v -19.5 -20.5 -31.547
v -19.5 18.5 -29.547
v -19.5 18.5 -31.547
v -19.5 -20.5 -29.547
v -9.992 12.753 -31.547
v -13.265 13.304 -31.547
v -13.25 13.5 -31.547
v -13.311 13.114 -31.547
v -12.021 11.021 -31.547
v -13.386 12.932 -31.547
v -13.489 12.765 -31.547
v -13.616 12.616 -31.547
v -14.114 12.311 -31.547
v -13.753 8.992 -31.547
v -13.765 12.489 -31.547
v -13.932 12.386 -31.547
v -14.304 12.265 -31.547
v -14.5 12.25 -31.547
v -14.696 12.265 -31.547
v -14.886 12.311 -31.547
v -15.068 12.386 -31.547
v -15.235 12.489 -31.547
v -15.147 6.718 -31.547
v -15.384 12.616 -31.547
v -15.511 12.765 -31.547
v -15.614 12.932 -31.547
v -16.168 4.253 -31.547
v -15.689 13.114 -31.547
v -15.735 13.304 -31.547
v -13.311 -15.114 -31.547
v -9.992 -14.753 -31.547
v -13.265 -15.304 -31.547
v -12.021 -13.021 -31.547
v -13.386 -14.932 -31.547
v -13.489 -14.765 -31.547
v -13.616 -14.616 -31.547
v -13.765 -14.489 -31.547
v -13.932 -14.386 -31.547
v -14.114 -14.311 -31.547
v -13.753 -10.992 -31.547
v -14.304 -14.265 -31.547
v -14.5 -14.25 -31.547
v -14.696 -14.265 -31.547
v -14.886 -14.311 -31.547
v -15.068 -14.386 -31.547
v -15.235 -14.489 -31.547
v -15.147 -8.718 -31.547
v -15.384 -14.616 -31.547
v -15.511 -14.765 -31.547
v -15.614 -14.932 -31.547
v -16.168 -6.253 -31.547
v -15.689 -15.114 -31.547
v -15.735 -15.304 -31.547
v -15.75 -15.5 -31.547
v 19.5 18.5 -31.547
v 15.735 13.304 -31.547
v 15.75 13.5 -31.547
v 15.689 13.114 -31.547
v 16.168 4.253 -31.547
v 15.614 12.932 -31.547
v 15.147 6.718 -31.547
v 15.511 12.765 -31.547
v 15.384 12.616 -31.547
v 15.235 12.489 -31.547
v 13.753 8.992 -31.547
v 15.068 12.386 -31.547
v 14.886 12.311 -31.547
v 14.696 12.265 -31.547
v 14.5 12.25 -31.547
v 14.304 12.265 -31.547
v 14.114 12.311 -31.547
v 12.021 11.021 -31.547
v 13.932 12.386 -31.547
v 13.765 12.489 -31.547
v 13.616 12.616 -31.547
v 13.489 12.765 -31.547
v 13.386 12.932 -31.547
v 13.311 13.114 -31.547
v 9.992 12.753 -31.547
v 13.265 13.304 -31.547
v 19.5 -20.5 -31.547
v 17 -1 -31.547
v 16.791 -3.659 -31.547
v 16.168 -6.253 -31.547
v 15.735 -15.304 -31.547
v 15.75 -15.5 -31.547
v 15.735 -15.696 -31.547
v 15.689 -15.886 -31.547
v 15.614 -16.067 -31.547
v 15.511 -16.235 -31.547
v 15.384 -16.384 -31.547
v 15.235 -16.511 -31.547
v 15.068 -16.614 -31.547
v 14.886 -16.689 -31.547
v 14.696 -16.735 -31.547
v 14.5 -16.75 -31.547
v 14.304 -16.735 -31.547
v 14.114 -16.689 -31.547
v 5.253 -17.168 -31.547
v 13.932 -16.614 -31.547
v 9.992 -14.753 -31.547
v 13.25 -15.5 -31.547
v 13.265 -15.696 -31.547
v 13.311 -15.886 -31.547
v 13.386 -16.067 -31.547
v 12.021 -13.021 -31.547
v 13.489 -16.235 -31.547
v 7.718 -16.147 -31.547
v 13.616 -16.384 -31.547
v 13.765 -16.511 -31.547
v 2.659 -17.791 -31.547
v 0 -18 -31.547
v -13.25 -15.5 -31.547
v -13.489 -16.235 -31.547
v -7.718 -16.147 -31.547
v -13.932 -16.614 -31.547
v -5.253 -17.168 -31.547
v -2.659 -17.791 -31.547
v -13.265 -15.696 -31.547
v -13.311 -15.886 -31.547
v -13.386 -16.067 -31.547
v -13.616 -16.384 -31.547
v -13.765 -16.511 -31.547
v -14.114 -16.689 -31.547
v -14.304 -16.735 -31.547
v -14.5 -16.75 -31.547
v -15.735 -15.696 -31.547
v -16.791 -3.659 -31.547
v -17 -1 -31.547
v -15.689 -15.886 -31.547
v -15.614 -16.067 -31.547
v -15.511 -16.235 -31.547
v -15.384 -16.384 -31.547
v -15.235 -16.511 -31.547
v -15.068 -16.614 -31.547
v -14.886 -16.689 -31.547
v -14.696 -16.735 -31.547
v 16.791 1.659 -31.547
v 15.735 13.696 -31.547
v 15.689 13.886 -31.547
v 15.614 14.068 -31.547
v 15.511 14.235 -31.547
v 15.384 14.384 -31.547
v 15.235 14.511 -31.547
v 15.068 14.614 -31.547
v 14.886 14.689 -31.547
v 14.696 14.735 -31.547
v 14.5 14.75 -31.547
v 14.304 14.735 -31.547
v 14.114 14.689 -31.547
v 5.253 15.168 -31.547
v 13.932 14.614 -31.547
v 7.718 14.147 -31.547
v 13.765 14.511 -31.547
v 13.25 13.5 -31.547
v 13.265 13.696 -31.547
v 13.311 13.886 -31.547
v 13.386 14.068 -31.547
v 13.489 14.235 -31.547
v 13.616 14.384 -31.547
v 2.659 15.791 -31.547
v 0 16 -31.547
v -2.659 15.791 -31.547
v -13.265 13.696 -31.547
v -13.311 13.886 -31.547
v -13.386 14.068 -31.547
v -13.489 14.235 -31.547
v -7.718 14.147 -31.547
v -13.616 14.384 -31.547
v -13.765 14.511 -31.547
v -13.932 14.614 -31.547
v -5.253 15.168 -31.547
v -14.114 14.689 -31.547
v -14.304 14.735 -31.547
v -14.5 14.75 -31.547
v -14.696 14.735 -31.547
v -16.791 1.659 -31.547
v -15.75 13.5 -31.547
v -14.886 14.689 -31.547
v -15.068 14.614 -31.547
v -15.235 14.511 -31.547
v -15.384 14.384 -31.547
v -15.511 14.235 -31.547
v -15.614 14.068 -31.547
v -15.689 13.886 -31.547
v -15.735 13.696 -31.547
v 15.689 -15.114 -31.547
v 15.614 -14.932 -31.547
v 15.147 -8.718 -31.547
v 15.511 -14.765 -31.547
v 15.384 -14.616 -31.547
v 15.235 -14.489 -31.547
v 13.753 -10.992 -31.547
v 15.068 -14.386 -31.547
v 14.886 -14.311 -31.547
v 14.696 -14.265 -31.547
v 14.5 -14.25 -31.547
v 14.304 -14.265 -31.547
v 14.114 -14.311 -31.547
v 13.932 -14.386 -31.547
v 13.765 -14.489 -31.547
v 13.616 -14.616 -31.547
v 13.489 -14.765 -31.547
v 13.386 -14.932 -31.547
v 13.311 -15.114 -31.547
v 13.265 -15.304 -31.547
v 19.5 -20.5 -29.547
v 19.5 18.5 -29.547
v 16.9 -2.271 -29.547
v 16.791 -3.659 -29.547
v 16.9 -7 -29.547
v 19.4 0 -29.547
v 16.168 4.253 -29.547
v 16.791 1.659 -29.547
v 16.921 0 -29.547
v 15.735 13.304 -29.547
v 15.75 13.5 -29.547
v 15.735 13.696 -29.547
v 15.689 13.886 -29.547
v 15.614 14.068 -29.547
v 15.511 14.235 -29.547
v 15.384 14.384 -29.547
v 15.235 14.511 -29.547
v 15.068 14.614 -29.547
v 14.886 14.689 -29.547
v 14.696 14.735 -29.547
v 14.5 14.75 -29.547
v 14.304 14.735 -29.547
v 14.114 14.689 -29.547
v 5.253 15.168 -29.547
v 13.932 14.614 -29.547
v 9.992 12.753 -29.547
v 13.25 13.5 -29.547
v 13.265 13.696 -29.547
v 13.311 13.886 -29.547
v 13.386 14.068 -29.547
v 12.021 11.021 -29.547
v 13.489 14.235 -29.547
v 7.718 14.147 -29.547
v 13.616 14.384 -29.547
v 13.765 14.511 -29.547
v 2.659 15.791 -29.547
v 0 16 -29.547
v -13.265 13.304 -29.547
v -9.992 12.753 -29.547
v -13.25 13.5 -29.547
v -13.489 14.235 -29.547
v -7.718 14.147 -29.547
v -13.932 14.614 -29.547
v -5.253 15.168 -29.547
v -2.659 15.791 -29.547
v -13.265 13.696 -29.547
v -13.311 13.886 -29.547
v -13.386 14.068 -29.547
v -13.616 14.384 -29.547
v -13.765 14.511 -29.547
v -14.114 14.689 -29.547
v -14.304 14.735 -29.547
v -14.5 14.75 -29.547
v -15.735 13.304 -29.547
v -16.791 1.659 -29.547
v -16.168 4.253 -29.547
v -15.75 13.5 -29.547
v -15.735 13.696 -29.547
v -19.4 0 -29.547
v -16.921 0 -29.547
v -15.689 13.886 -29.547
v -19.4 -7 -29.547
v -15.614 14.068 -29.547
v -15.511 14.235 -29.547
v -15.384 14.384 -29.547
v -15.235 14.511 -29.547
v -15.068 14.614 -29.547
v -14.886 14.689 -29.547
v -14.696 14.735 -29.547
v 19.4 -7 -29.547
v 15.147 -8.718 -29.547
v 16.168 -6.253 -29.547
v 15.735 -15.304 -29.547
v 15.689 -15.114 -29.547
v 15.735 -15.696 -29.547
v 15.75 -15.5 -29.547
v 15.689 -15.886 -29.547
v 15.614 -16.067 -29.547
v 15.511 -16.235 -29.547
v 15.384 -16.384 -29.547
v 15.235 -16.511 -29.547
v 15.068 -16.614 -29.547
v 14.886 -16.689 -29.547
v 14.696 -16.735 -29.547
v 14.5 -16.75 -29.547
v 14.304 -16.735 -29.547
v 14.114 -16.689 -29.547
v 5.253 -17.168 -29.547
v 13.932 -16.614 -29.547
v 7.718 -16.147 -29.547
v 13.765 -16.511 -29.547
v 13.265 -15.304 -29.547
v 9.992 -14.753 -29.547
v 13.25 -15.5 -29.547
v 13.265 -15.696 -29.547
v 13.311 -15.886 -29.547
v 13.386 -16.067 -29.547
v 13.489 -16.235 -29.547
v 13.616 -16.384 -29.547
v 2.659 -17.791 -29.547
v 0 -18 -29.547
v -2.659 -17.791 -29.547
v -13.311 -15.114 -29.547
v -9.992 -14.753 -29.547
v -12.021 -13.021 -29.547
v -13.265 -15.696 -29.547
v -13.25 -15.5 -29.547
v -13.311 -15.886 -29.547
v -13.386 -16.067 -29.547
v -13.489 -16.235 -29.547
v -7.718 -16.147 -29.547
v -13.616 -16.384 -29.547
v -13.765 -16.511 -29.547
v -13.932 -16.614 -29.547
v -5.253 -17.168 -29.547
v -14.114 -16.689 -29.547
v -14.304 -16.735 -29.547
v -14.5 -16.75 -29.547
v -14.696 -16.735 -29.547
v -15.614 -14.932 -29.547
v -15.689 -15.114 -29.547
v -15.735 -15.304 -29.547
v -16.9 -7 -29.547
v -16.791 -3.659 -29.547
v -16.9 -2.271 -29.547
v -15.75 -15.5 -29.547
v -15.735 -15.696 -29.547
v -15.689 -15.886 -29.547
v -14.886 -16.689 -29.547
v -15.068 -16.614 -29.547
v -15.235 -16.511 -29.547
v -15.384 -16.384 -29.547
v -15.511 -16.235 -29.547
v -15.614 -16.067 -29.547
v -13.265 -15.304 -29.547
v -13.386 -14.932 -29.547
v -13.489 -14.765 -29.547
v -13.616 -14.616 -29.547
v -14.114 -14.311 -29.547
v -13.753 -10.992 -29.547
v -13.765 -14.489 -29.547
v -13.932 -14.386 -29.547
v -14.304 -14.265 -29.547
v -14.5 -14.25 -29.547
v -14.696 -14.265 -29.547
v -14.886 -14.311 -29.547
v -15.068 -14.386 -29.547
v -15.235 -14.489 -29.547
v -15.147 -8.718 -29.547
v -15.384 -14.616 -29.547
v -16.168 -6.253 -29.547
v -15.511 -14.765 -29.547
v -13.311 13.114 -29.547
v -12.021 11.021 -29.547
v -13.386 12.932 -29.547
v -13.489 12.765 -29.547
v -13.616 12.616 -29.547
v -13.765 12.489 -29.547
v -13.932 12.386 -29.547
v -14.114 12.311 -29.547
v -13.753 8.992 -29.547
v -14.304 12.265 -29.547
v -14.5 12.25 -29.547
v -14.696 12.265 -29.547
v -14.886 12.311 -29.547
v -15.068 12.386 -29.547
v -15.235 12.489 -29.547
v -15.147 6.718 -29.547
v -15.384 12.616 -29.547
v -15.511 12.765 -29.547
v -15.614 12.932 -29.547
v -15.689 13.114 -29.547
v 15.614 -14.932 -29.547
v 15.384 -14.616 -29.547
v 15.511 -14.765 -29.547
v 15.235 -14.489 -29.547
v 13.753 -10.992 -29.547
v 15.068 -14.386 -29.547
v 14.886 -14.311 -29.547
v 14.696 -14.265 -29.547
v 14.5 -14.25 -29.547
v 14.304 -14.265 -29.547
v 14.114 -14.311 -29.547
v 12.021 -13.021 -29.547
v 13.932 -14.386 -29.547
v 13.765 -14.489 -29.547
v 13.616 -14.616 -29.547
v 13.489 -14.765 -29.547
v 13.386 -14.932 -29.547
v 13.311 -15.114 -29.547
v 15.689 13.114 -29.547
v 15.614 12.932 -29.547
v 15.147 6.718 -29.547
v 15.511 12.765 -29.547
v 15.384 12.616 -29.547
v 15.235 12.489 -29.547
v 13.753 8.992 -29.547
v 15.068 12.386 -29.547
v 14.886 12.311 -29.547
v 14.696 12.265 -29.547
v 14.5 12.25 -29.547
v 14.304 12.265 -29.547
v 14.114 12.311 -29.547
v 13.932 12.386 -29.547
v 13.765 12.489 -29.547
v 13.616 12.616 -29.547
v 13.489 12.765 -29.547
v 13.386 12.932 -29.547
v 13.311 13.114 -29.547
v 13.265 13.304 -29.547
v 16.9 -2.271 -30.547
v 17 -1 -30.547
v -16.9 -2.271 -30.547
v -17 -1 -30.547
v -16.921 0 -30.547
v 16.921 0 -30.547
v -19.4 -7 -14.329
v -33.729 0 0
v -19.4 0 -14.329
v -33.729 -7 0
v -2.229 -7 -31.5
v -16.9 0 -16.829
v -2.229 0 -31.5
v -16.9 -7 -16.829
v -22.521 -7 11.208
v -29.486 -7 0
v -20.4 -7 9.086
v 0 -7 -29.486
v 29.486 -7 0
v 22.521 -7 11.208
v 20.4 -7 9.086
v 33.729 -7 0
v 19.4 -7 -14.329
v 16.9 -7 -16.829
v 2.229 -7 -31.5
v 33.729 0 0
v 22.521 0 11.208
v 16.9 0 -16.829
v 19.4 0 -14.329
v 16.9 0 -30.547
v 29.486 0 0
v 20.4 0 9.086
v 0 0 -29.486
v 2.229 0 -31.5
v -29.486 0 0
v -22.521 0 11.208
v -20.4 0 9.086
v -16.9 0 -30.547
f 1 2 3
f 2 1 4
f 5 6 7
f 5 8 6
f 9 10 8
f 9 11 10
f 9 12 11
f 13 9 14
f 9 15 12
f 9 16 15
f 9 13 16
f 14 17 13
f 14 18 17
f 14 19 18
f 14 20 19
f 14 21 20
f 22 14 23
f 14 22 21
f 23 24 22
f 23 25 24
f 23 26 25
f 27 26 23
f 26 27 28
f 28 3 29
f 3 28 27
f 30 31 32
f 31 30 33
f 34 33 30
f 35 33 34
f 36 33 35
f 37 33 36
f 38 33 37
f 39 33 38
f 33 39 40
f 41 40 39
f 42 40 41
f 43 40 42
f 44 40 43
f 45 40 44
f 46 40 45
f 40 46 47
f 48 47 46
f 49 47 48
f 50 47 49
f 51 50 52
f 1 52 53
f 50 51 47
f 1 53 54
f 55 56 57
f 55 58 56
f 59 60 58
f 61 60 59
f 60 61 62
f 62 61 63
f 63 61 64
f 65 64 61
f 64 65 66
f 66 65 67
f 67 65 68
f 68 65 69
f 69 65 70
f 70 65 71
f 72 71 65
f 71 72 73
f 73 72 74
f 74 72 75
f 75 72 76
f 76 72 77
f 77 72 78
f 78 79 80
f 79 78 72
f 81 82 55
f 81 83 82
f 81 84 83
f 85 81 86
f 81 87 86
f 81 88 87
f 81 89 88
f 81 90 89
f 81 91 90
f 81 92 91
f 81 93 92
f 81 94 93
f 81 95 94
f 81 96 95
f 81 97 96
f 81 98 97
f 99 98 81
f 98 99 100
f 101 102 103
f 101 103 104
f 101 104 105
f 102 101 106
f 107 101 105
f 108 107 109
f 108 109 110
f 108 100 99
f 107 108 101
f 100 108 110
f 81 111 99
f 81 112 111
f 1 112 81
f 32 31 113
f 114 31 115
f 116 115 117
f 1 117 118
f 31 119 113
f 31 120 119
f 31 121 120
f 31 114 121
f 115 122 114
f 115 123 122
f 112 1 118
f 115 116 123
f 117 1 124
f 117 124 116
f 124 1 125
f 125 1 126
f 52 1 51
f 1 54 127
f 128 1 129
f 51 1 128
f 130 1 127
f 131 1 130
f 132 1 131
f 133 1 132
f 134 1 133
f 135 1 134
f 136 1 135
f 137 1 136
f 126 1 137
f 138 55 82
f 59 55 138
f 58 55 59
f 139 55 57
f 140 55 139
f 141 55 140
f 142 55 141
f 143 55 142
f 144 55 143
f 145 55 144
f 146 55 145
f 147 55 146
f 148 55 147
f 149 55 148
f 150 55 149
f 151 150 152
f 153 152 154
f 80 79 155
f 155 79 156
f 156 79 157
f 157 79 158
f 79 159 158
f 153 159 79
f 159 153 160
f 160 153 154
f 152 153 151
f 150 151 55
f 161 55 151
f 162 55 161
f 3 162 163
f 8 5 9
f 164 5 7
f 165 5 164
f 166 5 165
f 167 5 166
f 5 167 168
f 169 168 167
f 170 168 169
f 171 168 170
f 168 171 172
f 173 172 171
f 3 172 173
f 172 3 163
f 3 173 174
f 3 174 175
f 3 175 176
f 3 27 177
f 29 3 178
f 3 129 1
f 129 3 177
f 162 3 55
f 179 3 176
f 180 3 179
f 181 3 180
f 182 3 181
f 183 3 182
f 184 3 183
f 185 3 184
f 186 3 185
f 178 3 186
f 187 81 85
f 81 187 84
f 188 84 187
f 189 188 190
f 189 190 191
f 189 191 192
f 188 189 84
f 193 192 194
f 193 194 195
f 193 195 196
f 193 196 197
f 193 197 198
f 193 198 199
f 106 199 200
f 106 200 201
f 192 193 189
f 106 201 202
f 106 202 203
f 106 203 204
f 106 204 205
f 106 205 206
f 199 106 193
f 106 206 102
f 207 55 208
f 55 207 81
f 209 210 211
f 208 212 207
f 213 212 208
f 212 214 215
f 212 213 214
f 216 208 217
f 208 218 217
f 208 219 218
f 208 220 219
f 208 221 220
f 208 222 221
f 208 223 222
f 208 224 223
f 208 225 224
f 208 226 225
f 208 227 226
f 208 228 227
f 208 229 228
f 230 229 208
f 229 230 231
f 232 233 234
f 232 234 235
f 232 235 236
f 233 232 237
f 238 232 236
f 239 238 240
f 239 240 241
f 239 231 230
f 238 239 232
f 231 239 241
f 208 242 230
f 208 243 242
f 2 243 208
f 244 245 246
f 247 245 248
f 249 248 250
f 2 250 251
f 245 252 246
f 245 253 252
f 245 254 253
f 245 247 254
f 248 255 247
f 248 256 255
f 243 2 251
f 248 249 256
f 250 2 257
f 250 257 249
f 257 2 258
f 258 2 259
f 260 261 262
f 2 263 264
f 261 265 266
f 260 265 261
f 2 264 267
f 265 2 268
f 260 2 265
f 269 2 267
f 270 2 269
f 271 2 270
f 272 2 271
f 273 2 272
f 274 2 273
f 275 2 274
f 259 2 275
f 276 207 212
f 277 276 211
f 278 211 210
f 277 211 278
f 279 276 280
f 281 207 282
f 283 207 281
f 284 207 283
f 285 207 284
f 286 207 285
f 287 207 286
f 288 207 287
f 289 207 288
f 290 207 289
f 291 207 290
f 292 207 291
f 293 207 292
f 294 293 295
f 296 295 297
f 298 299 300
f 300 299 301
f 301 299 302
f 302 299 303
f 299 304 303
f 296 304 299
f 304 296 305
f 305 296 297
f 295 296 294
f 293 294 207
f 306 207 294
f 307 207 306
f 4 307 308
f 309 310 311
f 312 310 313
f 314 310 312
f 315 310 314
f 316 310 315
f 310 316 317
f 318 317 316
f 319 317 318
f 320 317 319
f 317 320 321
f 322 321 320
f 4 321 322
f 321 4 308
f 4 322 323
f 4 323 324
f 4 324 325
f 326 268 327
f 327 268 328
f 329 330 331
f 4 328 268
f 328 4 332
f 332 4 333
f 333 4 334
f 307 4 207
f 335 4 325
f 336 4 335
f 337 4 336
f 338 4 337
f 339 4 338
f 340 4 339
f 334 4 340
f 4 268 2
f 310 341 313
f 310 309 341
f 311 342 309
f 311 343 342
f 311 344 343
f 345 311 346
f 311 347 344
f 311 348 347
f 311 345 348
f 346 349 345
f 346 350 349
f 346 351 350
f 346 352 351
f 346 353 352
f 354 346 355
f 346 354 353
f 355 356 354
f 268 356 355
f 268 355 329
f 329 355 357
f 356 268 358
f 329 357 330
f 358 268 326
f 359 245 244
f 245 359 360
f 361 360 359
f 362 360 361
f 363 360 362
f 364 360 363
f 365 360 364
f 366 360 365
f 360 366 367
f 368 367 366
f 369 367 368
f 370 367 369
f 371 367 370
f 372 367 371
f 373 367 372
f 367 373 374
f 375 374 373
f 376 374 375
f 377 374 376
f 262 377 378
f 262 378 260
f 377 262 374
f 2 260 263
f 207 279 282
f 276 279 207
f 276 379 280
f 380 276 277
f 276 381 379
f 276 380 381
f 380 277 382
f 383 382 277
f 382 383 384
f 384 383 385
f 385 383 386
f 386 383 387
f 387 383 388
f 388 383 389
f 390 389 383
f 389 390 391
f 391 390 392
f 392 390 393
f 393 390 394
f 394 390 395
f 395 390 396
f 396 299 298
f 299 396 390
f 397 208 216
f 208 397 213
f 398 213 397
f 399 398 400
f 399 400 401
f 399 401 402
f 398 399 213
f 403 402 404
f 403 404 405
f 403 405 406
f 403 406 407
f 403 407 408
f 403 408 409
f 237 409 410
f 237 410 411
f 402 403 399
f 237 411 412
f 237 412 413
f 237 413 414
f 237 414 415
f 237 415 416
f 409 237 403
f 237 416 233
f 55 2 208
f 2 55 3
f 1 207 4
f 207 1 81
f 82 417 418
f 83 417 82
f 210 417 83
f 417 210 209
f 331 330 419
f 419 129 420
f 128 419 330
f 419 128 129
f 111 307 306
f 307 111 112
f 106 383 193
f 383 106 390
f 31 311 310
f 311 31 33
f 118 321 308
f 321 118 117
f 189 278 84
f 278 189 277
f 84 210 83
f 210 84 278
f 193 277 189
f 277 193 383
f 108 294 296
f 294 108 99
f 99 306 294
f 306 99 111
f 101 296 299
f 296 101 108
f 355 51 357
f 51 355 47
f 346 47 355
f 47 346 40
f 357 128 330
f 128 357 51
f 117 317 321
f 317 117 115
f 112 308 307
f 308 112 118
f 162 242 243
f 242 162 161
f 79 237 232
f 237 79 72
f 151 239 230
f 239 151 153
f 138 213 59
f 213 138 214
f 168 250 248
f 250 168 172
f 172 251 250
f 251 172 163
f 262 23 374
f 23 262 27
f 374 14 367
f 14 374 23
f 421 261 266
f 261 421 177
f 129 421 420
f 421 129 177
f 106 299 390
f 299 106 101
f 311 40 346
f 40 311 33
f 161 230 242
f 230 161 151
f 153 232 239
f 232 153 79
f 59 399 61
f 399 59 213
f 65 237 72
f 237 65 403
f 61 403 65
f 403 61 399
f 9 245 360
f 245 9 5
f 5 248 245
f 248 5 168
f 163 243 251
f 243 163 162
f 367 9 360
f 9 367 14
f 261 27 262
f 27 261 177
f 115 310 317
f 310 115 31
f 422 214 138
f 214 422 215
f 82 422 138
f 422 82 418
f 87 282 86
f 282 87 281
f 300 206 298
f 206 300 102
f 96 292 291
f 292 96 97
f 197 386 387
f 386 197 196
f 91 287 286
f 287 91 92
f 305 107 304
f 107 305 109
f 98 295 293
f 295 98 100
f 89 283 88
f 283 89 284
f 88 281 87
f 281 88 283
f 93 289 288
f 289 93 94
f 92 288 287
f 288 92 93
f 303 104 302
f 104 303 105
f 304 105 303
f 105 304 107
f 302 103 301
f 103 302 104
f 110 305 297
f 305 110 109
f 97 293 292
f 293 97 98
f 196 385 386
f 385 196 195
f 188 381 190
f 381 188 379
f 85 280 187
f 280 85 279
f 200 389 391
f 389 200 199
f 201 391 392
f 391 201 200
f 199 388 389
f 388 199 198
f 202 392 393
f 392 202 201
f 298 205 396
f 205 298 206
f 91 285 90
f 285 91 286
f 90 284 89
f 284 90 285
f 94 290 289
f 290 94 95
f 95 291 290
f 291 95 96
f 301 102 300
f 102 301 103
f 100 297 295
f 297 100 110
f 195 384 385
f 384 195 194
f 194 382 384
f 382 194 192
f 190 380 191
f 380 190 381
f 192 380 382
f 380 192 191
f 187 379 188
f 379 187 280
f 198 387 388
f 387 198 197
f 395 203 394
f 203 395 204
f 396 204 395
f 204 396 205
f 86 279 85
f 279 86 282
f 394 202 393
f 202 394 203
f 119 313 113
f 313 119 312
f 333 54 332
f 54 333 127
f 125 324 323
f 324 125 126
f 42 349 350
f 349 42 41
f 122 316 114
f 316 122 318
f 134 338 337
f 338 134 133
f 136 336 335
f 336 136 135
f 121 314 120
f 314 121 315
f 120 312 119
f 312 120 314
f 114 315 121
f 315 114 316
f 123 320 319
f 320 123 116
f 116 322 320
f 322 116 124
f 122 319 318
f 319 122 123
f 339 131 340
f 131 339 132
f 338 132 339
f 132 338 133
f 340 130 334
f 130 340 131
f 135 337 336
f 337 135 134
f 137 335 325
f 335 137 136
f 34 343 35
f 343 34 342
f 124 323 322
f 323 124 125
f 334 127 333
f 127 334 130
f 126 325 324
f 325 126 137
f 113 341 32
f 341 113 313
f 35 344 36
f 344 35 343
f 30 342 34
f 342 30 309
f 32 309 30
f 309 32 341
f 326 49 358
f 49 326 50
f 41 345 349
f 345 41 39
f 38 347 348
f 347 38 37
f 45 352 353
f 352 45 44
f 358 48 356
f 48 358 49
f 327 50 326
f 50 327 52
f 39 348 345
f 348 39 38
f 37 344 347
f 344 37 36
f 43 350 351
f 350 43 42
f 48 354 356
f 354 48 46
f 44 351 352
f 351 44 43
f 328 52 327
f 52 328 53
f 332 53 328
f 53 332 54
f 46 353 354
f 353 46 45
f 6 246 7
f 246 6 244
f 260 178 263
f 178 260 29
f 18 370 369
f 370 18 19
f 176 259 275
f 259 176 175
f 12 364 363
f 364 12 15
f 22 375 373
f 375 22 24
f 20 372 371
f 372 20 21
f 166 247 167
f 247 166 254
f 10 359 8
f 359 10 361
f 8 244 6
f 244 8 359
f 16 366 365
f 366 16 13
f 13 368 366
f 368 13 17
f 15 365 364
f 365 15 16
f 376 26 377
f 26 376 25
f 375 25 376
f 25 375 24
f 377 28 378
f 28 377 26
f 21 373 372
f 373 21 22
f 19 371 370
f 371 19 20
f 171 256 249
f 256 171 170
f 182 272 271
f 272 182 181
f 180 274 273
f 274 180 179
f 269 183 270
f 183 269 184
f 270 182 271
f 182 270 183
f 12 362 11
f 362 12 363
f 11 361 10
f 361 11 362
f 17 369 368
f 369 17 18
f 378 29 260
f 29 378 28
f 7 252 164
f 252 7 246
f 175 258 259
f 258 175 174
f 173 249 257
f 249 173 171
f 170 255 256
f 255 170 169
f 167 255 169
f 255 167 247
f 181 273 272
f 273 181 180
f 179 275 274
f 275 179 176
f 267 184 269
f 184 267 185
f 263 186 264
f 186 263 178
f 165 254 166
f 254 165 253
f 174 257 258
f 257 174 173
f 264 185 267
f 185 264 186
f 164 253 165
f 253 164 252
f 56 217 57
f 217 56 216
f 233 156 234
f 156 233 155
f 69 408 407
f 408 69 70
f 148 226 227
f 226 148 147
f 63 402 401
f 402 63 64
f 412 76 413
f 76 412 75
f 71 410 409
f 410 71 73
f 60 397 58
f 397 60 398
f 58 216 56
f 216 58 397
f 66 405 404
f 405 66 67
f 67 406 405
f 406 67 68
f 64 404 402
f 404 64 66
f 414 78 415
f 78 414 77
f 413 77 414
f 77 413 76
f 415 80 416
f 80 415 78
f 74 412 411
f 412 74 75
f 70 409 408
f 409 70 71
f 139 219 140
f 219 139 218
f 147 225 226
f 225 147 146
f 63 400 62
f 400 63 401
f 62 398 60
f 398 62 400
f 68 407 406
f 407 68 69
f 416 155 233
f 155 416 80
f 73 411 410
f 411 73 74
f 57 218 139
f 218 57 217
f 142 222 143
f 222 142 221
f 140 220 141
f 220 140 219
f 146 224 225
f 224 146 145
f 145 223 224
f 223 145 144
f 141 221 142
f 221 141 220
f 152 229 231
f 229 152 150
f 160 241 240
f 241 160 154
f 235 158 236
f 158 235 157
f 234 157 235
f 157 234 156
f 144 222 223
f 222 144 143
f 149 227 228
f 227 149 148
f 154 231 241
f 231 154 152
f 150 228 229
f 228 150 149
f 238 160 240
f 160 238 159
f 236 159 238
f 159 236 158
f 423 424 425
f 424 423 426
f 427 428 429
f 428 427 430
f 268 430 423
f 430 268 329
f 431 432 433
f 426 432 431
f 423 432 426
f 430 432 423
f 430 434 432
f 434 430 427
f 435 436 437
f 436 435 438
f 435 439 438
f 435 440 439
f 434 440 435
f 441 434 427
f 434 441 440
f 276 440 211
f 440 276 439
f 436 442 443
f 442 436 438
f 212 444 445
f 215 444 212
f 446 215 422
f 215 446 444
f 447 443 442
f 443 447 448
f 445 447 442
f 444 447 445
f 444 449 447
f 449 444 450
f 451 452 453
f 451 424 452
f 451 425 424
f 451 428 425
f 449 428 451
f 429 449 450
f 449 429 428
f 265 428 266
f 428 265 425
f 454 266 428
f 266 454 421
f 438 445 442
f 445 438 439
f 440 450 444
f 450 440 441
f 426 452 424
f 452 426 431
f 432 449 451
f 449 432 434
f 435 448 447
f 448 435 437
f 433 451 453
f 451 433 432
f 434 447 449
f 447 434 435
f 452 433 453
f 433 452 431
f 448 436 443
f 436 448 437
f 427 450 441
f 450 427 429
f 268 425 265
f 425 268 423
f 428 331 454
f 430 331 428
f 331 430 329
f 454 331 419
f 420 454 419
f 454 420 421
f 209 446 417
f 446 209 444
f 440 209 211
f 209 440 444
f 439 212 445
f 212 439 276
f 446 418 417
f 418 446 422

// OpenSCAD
$fn=40;
motor_side_length = 43.2;
motor_corner_to_corner_length = sqrt(2*(motor_side_length*motor_side_length));


module arms() {
    height=7;
    
    rotate([0,0,45]) difference() {
        translate([0,0,height/2]) cube([motor_side_length + 4.5, motor_side_length + 4.5, height], center=true);
        translate([0,0,height/2]) cube([motor_side_length-1.5, motor_side_length-1.5, height+1], center=true);
        translate([-8,-8,-0.5]) cube([40,40,height+1]);
        rotate([0,0,45]) translate([-53.9,0,height/2]) cube([44.8,44.8,height+1], center=true);
    }
    translate([-19.4, -motor_corner_to_corner_length/2,0]) cube([2.5,17.60,height]);
    translate([16.9, -motor_corner_to_corner_length/2,0]) cube([2.5,17.60,height]);
}

module fan_mount() {
    bolt_hole_offset = (35-29)/2;
    bolt_hole_position = 35/2 - bolt_hole_offset;
    rotate([90,0,0]) difference() {
        cube([39,39,2], center=true);
        translate([0,0,-1.5]) cylinder(d=34, h=5);
        #translate([bolt_hole_position, bolt_hole_position, -1.5]) cylinder(d=2.5, h=3);
        #translate([-bolt_hole_position, bolt_hole_position, -1.5]) cylinder(d=2.5, h=3);
        #translate([-bolt_hole_position, -bolt_hole_position, -1.5]) cylinder(d=2.5, h=3);
        #translate([bolt_hole_position, -bolt_hole_position, -1.5]) cylinder(d=2.5, h=3);
    }
    
}

module stepper_fan_attachment() {
    rotate([90,0,0]) {
        arms();
        translate([0,-motor_corner_to_corner_length/2,1]) fan_mount();
    }
}

stepper_fan_attachment();
